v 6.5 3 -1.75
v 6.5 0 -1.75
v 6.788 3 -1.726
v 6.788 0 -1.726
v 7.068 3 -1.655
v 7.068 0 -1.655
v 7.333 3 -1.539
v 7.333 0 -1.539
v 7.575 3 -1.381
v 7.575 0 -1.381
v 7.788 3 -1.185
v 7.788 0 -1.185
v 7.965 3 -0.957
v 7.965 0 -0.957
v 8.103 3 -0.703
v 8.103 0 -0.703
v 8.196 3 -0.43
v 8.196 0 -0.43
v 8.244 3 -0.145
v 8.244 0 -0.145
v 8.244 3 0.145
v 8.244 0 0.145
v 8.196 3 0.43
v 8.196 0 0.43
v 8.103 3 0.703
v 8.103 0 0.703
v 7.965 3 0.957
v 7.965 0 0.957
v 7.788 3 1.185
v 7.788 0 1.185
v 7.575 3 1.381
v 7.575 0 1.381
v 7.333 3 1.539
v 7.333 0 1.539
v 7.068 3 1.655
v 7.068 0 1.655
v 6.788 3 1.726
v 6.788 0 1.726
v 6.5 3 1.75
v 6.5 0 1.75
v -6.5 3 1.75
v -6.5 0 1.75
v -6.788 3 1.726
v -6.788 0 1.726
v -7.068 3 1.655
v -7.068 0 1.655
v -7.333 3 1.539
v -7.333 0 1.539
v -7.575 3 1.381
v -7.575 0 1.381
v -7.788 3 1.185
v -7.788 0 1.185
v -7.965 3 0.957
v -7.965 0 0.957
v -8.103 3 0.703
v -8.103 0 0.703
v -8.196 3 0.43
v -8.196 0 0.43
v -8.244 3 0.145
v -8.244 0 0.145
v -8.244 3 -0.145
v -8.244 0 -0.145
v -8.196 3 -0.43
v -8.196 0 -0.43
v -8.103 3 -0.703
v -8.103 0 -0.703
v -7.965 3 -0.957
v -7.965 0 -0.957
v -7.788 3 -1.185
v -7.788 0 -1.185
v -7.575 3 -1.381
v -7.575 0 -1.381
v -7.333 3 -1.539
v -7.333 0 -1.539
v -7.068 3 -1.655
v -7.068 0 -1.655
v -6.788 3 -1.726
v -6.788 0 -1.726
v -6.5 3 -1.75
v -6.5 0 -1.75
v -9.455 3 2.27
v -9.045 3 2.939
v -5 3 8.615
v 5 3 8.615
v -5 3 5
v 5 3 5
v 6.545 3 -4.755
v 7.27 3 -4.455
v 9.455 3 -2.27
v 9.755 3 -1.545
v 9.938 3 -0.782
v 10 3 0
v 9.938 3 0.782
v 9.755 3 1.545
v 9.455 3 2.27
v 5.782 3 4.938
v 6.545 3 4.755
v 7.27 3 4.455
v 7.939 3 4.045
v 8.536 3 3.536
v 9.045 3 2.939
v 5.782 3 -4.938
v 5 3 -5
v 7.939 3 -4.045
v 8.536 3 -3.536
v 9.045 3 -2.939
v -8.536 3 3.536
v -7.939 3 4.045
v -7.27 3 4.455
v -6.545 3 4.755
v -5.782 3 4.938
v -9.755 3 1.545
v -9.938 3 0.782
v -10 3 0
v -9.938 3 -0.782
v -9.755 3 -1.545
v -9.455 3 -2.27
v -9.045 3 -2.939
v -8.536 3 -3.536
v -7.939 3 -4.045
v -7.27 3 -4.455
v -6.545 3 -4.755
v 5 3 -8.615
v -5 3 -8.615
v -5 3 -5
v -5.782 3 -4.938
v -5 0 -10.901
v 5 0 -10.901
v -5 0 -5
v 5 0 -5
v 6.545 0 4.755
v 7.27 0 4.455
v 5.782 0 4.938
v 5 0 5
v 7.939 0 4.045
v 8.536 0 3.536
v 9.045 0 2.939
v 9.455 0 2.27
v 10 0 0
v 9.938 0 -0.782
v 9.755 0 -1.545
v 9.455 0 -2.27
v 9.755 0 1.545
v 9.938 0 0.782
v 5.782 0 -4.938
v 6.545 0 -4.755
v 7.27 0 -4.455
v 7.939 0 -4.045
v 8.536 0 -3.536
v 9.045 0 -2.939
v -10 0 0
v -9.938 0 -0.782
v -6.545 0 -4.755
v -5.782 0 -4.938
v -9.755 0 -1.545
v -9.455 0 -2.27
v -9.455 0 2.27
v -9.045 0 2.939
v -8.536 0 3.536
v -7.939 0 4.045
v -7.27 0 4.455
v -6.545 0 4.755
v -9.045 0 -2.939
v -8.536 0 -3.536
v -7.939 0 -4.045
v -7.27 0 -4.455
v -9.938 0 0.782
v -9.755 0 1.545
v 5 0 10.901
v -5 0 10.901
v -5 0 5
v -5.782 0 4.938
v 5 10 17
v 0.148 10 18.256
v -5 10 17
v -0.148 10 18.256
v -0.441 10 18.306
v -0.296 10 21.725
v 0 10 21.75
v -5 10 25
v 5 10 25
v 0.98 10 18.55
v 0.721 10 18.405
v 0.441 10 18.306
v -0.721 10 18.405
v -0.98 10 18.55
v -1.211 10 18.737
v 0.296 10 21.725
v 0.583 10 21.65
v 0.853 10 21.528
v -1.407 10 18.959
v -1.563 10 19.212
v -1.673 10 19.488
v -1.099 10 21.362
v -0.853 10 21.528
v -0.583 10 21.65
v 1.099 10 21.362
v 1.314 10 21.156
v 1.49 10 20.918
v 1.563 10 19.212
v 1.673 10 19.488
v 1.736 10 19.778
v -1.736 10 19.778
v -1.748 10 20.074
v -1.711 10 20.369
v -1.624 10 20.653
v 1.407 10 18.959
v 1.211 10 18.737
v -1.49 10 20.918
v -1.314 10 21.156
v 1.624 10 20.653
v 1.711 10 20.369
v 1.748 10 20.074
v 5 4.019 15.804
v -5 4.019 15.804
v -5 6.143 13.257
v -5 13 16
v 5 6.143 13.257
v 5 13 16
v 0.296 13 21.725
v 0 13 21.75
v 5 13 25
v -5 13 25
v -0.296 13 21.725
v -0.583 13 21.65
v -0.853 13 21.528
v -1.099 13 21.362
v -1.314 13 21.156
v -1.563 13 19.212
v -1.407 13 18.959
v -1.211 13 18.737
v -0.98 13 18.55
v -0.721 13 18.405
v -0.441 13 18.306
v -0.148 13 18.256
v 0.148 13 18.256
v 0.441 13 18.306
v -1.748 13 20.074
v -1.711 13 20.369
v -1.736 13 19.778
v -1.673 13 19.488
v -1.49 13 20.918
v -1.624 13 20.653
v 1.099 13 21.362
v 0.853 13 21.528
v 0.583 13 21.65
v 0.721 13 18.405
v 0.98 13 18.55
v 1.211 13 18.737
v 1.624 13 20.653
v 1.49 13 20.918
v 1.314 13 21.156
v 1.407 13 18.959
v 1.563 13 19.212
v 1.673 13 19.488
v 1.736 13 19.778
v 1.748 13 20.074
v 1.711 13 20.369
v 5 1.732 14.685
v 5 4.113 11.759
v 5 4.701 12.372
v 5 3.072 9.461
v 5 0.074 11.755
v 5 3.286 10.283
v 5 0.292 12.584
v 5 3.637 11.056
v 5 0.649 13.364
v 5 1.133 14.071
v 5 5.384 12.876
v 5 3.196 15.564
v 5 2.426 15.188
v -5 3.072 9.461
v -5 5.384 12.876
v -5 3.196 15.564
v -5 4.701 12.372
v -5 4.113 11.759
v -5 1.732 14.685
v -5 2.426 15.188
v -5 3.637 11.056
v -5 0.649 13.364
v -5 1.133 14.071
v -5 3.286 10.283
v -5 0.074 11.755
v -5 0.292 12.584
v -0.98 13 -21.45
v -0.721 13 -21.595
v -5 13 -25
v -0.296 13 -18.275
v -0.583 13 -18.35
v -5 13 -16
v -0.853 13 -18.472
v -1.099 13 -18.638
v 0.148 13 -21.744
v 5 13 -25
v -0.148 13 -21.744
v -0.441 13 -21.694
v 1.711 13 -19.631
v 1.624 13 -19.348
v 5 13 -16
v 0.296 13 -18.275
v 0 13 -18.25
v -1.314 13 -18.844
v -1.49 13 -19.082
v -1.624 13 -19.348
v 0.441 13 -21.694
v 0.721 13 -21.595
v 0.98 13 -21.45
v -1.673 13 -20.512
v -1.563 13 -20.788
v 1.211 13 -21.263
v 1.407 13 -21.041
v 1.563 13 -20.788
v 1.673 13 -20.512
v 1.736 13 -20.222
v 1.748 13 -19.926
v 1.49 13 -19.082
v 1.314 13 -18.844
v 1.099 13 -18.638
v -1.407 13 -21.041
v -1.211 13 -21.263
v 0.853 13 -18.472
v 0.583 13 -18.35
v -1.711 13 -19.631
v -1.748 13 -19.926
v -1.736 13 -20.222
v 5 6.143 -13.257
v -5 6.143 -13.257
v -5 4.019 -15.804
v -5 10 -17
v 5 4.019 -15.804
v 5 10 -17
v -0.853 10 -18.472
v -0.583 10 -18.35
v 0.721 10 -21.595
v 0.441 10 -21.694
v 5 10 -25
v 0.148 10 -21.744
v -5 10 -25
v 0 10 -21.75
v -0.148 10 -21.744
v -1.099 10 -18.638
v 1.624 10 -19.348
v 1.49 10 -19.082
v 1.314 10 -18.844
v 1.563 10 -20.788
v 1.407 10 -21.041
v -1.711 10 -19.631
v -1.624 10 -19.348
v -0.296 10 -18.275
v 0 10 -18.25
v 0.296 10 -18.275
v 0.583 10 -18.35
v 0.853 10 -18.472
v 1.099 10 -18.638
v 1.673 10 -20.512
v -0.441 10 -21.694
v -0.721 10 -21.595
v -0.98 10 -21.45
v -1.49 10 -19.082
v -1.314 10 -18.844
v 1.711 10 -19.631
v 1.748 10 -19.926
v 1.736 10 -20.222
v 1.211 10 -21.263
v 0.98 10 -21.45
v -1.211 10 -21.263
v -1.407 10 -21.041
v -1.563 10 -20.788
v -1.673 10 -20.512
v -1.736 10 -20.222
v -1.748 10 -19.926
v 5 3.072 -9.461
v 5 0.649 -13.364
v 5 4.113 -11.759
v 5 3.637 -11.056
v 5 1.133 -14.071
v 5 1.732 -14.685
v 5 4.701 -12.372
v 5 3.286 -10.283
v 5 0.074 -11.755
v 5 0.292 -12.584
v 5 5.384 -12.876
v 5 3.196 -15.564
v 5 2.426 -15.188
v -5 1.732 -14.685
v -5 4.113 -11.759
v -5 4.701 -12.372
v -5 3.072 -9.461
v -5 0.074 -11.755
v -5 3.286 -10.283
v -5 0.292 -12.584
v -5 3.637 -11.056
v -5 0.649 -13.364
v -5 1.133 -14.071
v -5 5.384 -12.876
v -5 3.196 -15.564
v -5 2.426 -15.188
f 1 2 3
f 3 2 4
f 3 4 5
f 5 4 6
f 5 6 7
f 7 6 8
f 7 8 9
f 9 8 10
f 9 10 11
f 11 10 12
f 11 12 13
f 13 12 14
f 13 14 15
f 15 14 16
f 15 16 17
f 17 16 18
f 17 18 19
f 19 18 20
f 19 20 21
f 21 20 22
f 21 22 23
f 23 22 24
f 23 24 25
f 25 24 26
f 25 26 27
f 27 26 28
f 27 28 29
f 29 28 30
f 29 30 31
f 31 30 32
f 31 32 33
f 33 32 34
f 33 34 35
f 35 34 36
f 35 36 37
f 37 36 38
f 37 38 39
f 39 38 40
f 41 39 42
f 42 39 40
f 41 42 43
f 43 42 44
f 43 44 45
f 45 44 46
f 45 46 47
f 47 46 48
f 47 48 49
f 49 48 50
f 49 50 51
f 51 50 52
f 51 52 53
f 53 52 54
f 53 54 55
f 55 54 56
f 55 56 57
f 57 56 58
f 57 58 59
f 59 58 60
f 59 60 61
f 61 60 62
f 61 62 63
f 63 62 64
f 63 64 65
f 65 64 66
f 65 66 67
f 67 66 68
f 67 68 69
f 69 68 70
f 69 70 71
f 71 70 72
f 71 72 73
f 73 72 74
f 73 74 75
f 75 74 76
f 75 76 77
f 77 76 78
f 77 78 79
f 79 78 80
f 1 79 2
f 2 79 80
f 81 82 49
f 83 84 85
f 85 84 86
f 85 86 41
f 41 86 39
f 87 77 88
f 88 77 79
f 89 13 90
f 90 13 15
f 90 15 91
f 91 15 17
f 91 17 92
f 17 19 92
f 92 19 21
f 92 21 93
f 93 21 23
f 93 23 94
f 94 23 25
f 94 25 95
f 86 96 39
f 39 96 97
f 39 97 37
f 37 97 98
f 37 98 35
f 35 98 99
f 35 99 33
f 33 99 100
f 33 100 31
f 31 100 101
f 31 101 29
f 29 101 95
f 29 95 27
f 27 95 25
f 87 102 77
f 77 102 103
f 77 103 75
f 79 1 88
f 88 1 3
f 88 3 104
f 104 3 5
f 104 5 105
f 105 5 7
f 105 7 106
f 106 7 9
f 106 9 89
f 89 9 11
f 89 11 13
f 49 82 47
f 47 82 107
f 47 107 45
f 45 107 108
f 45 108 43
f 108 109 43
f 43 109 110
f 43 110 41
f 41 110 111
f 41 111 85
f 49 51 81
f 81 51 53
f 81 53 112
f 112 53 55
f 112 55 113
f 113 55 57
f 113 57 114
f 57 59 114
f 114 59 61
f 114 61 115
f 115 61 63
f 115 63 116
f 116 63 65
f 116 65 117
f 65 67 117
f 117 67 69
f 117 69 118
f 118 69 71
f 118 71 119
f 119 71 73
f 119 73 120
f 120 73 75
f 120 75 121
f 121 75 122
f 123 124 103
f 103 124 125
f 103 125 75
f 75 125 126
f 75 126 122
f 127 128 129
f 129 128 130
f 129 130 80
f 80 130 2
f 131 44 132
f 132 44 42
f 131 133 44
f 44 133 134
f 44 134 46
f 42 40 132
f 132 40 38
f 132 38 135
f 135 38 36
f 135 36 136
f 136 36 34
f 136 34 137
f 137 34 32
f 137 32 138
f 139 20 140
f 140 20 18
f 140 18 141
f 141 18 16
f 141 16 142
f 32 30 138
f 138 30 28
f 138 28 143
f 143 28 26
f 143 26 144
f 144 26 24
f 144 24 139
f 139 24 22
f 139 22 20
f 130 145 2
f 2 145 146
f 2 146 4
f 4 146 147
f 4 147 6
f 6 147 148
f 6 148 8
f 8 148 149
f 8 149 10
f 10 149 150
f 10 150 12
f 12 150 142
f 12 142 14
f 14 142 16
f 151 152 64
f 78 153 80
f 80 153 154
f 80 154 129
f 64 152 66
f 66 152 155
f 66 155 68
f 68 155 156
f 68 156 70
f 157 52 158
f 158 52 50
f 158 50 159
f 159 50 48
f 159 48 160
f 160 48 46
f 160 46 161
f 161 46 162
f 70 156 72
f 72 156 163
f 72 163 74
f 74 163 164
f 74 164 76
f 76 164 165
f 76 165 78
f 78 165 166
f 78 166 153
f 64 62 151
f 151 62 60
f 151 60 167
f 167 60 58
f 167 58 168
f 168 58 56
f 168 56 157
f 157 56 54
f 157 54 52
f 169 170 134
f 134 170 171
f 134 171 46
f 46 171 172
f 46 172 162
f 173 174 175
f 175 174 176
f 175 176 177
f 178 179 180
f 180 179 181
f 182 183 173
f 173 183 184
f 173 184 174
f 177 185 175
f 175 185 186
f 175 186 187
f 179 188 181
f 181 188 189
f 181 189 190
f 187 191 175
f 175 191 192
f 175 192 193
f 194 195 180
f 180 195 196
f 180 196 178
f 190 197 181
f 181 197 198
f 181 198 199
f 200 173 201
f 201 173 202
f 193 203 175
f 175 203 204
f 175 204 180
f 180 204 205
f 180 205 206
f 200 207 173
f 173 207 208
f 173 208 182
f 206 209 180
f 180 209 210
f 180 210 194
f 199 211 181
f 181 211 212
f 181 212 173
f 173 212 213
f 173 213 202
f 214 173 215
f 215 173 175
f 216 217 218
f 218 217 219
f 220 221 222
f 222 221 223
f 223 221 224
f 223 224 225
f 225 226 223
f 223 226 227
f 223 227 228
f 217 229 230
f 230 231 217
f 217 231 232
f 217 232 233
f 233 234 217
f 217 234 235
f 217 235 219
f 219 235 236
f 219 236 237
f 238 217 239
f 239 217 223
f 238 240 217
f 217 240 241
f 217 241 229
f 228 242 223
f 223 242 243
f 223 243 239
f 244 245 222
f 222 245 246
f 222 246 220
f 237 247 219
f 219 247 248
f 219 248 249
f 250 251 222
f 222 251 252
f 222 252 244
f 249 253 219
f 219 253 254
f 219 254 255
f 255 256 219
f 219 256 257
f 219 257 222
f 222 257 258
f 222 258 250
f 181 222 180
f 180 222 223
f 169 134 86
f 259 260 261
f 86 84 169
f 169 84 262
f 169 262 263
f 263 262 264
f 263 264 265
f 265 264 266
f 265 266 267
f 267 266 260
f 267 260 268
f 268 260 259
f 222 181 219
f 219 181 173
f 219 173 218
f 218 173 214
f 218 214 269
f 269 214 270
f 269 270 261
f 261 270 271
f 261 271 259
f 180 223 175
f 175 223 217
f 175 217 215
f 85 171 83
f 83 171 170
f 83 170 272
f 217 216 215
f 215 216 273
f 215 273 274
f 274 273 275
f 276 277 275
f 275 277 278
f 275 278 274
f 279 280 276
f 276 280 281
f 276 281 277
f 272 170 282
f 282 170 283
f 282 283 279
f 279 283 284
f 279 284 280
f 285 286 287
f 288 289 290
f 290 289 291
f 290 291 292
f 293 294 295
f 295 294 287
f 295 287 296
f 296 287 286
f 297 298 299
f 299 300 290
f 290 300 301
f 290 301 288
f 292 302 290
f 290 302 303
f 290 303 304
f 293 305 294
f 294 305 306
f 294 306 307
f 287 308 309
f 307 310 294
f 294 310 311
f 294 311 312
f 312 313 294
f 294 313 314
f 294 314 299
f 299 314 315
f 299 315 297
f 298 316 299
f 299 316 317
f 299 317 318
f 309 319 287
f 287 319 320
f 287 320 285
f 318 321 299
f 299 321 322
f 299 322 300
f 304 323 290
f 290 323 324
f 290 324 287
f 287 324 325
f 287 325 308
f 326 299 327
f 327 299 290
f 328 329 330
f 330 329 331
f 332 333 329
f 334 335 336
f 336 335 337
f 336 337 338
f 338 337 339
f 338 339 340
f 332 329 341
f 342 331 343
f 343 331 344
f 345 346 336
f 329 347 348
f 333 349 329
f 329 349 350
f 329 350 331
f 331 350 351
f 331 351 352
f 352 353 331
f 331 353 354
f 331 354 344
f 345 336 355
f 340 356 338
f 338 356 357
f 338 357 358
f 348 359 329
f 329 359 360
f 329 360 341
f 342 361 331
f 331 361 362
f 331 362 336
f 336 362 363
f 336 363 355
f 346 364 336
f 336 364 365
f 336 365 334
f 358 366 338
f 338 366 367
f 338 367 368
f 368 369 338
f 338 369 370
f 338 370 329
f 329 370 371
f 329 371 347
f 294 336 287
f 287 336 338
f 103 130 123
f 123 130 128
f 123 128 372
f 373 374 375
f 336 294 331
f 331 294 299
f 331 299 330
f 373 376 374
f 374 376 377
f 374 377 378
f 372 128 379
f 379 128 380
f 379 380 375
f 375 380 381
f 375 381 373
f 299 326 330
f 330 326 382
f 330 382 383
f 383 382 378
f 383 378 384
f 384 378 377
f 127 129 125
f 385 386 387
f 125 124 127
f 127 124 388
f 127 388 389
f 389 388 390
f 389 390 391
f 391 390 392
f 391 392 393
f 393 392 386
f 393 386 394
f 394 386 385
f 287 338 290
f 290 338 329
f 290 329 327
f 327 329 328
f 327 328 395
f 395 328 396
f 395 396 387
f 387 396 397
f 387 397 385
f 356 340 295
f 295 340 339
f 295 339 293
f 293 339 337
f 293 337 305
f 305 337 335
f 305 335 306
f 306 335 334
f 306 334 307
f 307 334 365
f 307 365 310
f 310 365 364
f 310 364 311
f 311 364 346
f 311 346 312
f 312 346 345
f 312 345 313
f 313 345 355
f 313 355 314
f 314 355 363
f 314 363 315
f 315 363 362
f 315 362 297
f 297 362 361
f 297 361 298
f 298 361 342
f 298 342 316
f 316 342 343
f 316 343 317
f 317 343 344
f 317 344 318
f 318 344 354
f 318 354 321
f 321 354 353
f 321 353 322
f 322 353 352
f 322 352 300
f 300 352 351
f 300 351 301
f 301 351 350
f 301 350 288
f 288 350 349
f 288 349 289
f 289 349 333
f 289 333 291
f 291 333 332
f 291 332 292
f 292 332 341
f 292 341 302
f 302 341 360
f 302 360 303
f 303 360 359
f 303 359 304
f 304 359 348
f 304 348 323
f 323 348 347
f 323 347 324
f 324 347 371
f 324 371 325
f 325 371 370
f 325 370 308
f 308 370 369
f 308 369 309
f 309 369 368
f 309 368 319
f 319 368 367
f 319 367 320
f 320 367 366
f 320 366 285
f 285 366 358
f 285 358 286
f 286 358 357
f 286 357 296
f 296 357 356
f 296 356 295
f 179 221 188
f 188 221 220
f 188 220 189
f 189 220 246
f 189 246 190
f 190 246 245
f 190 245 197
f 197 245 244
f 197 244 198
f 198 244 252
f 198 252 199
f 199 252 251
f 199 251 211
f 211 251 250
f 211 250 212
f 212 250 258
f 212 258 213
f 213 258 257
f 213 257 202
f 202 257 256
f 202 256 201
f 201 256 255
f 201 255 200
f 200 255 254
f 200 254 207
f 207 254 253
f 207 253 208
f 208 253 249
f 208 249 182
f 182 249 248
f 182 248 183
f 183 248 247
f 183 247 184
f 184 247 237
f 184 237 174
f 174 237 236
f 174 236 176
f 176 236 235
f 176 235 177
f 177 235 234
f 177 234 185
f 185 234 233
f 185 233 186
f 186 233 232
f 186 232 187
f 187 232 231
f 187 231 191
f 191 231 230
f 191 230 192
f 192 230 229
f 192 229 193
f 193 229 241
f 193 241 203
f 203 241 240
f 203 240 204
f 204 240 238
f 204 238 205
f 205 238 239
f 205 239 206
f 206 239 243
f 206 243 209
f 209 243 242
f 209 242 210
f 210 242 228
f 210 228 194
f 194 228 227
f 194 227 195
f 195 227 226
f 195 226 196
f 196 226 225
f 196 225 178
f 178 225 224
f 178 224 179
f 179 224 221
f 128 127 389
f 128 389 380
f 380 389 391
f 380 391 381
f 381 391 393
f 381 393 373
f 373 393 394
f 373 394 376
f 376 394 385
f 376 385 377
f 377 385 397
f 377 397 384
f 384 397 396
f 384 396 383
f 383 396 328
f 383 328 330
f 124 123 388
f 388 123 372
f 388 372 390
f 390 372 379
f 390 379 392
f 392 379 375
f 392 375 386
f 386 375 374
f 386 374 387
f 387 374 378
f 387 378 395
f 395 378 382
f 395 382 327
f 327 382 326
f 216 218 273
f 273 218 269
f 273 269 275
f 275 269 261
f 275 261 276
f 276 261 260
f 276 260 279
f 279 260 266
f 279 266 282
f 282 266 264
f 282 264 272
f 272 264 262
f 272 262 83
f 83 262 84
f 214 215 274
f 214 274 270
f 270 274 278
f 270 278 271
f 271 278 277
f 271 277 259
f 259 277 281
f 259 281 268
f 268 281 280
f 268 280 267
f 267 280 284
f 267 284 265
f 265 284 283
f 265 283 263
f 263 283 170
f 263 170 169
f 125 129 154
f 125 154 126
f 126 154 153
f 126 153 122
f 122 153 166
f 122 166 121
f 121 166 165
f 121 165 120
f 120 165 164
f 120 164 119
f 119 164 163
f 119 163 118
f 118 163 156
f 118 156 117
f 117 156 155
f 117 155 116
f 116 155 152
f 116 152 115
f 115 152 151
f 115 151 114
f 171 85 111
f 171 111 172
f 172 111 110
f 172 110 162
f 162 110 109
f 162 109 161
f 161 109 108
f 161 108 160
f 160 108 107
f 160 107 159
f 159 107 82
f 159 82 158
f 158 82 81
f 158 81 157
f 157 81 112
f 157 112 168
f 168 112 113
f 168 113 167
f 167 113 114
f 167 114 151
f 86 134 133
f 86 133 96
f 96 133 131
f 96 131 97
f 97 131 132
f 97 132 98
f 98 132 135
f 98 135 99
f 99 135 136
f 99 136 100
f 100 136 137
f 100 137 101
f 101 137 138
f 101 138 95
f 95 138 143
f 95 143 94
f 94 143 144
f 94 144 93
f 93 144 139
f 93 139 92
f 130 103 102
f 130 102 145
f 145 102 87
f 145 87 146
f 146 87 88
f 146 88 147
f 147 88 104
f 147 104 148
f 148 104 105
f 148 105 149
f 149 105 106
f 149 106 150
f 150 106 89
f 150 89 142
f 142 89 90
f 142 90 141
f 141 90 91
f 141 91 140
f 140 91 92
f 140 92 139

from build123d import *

# Parameters (mm, degrees)
SKETCH_1_W          = 20
SKETCH_1_H          = 10
EXTRUDE_1_DEPTH     = 3
SKETCH_2_W          = 8
SKETCH_2_H          = 3
EXTRUDE_2_DEPTH     = 5
SKETCH_3_R          = 1.75
CUT_EXTRUDE_1_DEPTH = 10
FILLET_1_R          = 5
FILLET_2_R          = 5


with BuildPart() as part:
    # 草图1 → 凸台-拉伸1 (new body)
    with BuildSketch(Plane(origin=(0, 0, 0), x_dir=(1, 0, 0), z_dir=(0, 1, 0))):
        Rectangle(SKETCH_1_W, SKETCH_1_H)
        with BuildLine():
            ThreePointArc((-6.5, -1.75), (-8.25, 0), (-6.5, 1.75))
            Line((-6.5, 1.75), (6.5, 1.75))
            ThreePointArc((6.5, 1.75), (7.737436867, 1.237436867), (8.25, 0))
            ThreePointArc((8.25, 0), (7.737436867, -1.237436867), (6.5, -1.75))
            Line((6.5, -1.75), (-6.5, -1.75))
        make_face(mode=Mode.SUBTRACT)
    extrude(amount=EXTRUDE_1_DEPTH)

    # 草图2 → 凸台-拉伸2 (add, symmetric)
    with BuildSketch(Plane(origin=(0, 0, 0), x_dir=(0, 0, -1), z_dir=(1, 0, 0))):
        with Locations((-21, 11.5)):
            Rectangle(SKETCH_2_W, SKETCH_2_H)
        Polygon((-12, 3), (-5, 3), (-5, 0), (-15, 0), (-17, 10), (-17, 13), (-16, 13), align=None)
        Polygon((16, 13), (17, 13), (17, 10), (15, 0), (5, 0), (5, 3), (12, 3), align=None)
        with Locations((21, 11.5)):
            Rectangle(SKETCH_2_W, SKETCH_2_H)
    extrude(amount=EXTRUDE_2_DEPTH, both=True)

    # 草图3 → 切除-拉伸1 (cut)
    with BuildSketch(Plane(origin=(0, 13, 0), x_dir=(1, 0, 0), z_dir=(0, 1, 0))):
        with Locations(Location((0, 20, 0), (0, 0, 270))):
            Circle(SKETCH_3_R)
        with Locations(Location((0, -20, 0), (0, 0, 270))):
            Circle(SKETCH_3_R)
    extrude(amount=-CUT_EXTRUDE_1_DEPTH, mode=Mode.SUBTRACT)

    # 圆角1
    fillet_1_edges = [part.edges().sort_by_distance(p)[0] for p in [
        (0, 0, 15),
        (0, 3, 12),
        (0, 3, -12),
        (0, 0, -15),
    ]]
    fillet(fillet_1_edges, radius=FILLET_1_R)

    # 圆角2
    fillet_2_edges = [part.edges().sort_by_distance(p)[0] for p in [
        (-10, 1.5, 5),
        (-10, 1.5, -5),
        (10, 1.5, -5),
        (10, 1.5, 5),
    ]]
    fillet(fillet_2_edges, radius=FILLET_2_R - 0.0001)  # a hair under: the kernel refuses the full size


solid = part.part
